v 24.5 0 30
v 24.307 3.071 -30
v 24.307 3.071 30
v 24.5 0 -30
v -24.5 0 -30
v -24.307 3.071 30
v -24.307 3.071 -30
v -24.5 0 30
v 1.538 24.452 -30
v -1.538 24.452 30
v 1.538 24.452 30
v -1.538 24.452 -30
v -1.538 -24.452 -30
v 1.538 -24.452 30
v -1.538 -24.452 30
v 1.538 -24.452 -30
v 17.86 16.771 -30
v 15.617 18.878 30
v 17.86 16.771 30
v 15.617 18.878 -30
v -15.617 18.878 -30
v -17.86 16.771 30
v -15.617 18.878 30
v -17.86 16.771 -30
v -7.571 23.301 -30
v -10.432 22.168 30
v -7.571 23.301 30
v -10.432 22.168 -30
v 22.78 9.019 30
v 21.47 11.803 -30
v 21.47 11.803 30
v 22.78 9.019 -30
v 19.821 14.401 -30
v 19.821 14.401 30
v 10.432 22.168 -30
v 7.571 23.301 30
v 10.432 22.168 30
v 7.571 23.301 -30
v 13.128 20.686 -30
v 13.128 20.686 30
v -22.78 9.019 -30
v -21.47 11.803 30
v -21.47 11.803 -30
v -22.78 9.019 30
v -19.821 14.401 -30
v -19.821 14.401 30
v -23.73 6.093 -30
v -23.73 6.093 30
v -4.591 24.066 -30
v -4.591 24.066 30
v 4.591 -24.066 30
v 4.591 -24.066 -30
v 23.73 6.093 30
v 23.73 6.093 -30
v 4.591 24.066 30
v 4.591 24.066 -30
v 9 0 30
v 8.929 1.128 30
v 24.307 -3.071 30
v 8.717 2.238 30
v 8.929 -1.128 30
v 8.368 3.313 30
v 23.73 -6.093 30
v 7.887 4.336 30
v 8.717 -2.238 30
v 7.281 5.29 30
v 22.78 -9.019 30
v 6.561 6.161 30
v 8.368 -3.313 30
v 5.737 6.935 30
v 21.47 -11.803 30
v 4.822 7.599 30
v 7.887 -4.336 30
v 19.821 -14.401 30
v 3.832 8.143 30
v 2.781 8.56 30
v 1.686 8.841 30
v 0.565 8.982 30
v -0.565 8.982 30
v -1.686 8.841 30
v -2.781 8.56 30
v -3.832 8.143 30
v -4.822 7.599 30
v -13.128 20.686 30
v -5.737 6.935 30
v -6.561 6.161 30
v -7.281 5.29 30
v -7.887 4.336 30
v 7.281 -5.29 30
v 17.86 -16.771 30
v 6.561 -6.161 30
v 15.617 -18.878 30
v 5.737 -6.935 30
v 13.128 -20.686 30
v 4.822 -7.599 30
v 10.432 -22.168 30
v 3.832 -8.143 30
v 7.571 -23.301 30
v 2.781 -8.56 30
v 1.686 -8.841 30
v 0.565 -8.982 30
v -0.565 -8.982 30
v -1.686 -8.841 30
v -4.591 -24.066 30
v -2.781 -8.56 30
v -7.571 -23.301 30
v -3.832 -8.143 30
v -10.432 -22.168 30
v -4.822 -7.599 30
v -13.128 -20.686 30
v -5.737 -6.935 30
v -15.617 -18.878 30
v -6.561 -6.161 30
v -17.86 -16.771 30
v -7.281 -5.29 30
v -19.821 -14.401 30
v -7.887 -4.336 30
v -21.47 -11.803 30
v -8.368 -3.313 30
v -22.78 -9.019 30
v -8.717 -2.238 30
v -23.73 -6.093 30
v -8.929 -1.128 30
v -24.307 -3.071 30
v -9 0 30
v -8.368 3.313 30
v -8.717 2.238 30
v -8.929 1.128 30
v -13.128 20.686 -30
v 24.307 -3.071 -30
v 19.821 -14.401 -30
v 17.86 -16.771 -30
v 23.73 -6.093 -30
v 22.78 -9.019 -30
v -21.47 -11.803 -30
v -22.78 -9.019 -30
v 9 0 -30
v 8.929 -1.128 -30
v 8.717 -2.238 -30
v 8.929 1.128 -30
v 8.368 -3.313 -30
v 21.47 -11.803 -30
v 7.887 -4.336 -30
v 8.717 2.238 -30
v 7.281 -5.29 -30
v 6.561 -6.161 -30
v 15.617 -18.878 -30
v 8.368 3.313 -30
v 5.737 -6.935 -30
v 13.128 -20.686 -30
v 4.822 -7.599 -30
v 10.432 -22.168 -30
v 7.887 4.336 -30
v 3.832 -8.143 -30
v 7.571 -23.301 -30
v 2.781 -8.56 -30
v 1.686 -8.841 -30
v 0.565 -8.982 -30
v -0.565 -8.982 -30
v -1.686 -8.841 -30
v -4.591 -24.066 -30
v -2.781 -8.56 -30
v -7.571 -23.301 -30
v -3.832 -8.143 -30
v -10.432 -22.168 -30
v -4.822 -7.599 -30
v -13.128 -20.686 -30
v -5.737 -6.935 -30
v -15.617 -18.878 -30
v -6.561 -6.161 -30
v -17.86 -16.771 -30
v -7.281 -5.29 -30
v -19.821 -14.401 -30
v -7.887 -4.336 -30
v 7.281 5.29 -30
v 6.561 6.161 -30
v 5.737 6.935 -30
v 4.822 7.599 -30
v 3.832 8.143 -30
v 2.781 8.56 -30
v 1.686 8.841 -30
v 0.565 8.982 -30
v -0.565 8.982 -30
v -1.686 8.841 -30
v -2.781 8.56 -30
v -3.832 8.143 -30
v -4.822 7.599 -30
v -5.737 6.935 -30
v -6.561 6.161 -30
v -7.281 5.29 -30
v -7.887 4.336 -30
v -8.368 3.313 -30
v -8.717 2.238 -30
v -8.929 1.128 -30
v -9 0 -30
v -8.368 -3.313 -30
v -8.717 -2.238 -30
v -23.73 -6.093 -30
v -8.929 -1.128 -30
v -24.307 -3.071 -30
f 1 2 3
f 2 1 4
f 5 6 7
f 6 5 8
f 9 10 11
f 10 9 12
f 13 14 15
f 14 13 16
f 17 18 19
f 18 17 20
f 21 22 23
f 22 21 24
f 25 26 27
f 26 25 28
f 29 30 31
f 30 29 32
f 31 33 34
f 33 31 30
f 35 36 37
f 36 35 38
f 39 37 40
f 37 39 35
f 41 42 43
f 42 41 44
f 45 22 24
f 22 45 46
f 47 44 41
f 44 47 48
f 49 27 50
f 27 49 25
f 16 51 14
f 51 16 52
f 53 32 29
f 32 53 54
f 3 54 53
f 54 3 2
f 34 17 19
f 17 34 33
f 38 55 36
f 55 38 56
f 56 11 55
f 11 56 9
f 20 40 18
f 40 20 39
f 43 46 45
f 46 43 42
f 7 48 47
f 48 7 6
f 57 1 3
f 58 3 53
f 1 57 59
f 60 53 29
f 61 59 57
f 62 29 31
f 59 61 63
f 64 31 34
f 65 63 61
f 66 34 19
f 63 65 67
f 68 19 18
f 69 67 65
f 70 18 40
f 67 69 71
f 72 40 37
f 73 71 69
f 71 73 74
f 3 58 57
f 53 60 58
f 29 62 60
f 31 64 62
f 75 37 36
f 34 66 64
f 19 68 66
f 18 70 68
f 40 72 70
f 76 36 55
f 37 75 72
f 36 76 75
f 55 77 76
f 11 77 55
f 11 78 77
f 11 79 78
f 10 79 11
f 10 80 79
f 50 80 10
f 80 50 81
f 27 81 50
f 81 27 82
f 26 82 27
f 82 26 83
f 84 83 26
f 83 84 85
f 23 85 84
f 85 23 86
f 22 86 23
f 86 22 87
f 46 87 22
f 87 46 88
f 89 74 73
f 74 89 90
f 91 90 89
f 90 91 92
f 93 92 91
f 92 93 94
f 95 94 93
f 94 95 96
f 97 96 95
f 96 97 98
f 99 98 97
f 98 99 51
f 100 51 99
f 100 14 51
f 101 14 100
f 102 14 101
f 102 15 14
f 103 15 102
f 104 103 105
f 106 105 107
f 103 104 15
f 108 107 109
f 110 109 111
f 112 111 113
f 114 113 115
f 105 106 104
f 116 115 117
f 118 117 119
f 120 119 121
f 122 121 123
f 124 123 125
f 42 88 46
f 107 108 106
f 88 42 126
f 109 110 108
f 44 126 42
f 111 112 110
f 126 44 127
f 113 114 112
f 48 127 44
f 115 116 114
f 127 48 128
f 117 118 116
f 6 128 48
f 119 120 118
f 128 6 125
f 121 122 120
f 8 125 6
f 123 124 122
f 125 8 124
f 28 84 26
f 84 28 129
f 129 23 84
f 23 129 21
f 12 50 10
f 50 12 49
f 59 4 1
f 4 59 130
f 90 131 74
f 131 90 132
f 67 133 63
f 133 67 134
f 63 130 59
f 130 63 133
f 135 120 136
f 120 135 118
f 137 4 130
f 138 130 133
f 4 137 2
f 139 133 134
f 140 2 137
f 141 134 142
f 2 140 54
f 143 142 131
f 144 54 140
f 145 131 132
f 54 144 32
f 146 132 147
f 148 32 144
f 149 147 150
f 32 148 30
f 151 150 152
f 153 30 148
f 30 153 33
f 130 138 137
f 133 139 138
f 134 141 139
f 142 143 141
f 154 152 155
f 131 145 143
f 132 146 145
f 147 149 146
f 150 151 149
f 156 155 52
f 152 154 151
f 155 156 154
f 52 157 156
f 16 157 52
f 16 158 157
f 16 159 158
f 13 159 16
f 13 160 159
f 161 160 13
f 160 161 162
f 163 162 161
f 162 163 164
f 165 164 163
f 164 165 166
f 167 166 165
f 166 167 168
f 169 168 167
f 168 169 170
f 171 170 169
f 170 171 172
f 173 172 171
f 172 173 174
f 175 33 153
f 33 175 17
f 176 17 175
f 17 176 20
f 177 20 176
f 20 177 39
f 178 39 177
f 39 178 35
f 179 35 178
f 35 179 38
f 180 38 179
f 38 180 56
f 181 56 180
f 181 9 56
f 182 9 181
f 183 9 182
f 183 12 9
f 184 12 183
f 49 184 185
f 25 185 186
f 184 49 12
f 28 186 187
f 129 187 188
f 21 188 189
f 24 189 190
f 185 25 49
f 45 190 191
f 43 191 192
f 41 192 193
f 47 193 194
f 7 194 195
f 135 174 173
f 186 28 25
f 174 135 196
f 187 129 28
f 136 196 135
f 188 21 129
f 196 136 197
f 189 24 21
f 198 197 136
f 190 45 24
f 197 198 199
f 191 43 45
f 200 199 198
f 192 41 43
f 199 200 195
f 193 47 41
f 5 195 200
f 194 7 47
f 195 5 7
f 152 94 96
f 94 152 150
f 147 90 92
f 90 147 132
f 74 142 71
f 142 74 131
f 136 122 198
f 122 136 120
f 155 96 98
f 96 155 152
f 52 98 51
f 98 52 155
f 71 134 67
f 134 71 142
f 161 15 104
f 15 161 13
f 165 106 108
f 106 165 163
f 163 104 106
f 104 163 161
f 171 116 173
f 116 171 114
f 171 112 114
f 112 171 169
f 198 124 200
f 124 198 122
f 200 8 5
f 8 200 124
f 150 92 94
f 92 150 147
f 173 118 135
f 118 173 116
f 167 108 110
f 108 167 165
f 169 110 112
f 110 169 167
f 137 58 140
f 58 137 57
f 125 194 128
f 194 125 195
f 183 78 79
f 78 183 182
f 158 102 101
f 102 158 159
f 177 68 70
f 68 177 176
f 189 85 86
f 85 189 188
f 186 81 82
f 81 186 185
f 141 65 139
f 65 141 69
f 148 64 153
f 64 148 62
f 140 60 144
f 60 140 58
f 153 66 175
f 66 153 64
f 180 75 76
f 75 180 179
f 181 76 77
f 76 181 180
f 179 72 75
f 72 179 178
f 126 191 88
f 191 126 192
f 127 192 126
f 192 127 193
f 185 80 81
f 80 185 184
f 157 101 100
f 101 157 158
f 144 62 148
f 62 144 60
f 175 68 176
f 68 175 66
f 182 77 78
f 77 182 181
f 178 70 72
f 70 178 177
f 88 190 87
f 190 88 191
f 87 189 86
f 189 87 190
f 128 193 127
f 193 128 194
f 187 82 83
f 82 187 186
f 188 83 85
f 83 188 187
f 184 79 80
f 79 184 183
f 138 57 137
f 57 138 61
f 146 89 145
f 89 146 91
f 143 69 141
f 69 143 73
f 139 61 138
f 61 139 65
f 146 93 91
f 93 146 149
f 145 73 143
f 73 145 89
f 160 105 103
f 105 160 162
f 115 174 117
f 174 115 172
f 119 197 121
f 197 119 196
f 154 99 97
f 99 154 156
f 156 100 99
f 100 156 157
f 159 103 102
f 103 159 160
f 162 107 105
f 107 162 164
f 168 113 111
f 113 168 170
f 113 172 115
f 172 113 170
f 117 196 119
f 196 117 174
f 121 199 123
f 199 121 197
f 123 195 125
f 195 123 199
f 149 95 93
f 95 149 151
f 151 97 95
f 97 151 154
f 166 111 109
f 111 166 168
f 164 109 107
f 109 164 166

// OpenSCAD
$fn = 50;


difference() {
	union() {
		translate(v = [0, 0, -30.0000000000]) {
			cylinder(h = 60, r = 24.5000000000);
		}
	}
	union() {
		translate(v = [0, 0, -100.0000000000]) {
			cylinder(h = 200, r = 9);
		}
	}
}
